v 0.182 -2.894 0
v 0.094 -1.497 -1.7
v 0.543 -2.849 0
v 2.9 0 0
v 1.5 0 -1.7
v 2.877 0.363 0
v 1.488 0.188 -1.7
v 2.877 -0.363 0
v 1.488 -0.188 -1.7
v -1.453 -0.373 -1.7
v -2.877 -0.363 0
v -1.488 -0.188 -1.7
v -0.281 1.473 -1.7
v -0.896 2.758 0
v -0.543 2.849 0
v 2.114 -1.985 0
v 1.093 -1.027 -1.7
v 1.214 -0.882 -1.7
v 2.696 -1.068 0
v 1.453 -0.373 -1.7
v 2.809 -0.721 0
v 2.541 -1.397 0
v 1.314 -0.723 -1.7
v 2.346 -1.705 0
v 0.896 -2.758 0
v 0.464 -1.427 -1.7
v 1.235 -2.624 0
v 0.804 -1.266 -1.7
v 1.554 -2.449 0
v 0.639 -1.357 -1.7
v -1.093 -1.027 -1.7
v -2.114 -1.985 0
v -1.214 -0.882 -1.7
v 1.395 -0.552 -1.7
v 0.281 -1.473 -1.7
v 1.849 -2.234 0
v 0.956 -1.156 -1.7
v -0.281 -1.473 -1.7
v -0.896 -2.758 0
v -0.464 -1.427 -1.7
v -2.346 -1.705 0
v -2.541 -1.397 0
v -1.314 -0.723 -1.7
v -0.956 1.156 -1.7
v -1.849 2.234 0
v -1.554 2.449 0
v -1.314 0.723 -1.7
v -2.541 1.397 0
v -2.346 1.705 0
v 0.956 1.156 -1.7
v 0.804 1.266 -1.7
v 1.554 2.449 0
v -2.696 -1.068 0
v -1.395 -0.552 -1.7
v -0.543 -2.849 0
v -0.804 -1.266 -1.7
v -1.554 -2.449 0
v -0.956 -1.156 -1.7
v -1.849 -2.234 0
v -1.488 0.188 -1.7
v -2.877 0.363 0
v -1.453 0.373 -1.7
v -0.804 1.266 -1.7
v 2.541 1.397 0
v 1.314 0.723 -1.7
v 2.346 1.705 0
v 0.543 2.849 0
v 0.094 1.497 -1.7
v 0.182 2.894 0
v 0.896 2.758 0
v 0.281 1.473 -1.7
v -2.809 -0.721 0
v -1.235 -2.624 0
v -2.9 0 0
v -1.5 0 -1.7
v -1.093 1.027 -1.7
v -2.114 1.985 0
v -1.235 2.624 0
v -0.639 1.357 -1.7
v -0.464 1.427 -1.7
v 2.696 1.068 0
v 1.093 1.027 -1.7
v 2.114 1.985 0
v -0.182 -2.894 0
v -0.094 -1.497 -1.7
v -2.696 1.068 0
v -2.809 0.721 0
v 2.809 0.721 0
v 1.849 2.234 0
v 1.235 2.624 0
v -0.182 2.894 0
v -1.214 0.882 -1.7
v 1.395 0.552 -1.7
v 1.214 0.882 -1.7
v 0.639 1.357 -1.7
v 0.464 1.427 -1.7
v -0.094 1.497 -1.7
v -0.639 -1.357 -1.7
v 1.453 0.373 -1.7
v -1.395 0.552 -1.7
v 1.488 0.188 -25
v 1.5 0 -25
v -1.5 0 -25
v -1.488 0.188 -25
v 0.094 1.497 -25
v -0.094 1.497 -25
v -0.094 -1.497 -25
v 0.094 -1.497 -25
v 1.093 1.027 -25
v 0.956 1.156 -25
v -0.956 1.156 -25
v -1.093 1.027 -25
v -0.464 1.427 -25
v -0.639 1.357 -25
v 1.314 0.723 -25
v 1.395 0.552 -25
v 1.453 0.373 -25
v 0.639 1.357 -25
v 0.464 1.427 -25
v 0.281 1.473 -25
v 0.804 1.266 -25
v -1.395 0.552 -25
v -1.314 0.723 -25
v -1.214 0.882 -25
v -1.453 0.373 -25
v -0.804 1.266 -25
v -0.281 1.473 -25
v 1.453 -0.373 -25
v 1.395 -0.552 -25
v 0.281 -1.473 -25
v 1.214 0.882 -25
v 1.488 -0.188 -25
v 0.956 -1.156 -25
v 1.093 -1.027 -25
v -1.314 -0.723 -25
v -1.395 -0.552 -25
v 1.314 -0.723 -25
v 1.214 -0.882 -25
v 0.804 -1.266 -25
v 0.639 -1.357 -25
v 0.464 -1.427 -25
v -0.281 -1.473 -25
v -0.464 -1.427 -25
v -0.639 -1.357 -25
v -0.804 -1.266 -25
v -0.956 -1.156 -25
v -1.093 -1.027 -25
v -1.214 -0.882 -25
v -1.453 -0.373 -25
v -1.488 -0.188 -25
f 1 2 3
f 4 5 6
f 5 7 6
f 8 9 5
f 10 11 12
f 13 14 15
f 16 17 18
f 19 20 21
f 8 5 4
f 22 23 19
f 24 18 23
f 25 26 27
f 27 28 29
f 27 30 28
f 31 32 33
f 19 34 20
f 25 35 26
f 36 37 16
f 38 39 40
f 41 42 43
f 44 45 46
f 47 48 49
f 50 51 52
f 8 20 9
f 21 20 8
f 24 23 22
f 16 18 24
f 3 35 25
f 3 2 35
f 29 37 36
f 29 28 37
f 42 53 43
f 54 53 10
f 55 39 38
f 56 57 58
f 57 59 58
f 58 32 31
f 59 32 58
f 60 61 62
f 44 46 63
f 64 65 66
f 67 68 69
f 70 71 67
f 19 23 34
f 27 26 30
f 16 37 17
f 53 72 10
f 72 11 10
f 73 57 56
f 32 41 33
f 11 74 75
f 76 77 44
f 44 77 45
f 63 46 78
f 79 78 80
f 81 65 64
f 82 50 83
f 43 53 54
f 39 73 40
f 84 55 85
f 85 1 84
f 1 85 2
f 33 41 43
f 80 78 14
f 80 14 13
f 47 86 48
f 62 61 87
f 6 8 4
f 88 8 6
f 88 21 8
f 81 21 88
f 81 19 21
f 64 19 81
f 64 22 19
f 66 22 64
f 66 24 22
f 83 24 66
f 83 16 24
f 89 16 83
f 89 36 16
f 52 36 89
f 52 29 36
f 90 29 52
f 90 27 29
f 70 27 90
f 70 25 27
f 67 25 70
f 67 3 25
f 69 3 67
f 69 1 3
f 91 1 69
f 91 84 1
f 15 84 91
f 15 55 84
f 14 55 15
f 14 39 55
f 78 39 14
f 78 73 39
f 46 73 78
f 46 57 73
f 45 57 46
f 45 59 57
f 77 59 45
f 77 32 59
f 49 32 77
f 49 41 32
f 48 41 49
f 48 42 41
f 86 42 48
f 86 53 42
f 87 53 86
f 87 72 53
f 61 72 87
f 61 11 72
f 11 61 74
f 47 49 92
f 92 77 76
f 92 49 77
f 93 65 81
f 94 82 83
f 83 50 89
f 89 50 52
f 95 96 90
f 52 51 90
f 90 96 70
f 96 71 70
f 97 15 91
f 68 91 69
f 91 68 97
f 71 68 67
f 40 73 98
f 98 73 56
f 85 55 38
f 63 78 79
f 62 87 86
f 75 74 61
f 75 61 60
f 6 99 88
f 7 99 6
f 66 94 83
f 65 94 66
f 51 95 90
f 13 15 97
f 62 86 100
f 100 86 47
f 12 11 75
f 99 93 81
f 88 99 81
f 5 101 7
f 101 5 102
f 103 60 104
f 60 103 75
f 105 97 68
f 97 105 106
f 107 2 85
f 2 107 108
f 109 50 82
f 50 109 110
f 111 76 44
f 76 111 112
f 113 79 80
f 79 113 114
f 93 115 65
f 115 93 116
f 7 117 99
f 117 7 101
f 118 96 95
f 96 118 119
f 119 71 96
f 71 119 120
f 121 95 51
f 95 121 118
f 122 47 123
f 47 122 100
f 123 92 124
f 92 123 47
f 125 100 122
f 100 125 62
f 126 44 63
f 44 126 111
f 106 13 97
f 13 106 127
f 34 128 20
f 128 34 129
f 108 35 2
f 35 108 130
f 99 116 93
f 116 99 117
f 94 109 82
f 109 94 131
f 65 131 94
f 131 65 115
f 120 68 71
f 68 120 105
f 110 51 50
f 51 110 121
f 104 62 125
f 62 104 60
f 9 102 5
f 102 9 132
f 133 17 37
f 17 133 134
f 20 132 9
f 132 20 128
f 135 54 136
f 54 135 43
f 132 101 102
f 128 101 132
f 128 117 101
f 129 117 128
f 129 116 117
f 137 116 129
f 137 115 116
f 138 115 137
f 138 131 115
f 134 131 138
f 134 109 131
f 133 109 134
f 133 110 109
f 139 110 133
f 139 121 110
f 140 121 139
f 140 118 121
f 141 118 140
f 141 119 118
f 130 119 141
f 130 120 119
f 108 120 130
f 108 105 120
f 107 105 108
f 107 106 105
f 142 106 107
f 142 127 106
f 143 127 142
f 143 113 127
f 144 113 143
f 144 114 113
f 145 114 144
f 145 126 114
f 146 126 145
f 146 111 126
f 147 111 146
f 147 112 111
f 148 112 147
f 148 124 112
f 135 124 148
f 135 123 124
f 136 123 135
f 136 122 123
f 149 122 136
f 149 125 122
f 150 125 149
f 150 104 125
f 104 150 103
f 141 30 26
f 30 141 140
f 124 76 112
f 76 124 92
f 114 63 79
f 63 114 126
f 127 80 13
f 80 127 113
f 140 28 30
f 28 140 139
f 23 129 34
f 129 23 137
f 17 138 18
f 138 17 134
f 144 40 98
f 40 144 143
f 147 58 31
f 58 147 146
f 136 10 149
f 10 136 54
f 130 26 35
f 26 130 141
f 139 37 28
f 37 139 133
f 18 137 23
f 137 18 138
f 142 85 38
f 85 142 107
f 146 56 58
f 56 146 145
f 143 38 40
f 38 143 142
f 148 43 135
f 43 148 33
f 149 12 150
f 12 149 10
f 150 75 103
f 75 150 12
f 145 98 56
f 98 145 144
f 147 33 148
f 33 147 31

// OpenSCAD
$fn = 50;


difference() {
	union() {
		translate(v = [0, 0, -1.7000000000]) {
			rotate(a = [0, 0, 0]) {
				cylinder(h = 1.7000000000, r1 = 1.5000000000, r2 = 2.9000000000);
			}
		}
		translate(v = [0, 0, -25]) {
			rotate(a = [0, 0, 0]) {
				cylinder(h = 25, r = 1.5000000000);
			}
		}
	}
	union();
}
